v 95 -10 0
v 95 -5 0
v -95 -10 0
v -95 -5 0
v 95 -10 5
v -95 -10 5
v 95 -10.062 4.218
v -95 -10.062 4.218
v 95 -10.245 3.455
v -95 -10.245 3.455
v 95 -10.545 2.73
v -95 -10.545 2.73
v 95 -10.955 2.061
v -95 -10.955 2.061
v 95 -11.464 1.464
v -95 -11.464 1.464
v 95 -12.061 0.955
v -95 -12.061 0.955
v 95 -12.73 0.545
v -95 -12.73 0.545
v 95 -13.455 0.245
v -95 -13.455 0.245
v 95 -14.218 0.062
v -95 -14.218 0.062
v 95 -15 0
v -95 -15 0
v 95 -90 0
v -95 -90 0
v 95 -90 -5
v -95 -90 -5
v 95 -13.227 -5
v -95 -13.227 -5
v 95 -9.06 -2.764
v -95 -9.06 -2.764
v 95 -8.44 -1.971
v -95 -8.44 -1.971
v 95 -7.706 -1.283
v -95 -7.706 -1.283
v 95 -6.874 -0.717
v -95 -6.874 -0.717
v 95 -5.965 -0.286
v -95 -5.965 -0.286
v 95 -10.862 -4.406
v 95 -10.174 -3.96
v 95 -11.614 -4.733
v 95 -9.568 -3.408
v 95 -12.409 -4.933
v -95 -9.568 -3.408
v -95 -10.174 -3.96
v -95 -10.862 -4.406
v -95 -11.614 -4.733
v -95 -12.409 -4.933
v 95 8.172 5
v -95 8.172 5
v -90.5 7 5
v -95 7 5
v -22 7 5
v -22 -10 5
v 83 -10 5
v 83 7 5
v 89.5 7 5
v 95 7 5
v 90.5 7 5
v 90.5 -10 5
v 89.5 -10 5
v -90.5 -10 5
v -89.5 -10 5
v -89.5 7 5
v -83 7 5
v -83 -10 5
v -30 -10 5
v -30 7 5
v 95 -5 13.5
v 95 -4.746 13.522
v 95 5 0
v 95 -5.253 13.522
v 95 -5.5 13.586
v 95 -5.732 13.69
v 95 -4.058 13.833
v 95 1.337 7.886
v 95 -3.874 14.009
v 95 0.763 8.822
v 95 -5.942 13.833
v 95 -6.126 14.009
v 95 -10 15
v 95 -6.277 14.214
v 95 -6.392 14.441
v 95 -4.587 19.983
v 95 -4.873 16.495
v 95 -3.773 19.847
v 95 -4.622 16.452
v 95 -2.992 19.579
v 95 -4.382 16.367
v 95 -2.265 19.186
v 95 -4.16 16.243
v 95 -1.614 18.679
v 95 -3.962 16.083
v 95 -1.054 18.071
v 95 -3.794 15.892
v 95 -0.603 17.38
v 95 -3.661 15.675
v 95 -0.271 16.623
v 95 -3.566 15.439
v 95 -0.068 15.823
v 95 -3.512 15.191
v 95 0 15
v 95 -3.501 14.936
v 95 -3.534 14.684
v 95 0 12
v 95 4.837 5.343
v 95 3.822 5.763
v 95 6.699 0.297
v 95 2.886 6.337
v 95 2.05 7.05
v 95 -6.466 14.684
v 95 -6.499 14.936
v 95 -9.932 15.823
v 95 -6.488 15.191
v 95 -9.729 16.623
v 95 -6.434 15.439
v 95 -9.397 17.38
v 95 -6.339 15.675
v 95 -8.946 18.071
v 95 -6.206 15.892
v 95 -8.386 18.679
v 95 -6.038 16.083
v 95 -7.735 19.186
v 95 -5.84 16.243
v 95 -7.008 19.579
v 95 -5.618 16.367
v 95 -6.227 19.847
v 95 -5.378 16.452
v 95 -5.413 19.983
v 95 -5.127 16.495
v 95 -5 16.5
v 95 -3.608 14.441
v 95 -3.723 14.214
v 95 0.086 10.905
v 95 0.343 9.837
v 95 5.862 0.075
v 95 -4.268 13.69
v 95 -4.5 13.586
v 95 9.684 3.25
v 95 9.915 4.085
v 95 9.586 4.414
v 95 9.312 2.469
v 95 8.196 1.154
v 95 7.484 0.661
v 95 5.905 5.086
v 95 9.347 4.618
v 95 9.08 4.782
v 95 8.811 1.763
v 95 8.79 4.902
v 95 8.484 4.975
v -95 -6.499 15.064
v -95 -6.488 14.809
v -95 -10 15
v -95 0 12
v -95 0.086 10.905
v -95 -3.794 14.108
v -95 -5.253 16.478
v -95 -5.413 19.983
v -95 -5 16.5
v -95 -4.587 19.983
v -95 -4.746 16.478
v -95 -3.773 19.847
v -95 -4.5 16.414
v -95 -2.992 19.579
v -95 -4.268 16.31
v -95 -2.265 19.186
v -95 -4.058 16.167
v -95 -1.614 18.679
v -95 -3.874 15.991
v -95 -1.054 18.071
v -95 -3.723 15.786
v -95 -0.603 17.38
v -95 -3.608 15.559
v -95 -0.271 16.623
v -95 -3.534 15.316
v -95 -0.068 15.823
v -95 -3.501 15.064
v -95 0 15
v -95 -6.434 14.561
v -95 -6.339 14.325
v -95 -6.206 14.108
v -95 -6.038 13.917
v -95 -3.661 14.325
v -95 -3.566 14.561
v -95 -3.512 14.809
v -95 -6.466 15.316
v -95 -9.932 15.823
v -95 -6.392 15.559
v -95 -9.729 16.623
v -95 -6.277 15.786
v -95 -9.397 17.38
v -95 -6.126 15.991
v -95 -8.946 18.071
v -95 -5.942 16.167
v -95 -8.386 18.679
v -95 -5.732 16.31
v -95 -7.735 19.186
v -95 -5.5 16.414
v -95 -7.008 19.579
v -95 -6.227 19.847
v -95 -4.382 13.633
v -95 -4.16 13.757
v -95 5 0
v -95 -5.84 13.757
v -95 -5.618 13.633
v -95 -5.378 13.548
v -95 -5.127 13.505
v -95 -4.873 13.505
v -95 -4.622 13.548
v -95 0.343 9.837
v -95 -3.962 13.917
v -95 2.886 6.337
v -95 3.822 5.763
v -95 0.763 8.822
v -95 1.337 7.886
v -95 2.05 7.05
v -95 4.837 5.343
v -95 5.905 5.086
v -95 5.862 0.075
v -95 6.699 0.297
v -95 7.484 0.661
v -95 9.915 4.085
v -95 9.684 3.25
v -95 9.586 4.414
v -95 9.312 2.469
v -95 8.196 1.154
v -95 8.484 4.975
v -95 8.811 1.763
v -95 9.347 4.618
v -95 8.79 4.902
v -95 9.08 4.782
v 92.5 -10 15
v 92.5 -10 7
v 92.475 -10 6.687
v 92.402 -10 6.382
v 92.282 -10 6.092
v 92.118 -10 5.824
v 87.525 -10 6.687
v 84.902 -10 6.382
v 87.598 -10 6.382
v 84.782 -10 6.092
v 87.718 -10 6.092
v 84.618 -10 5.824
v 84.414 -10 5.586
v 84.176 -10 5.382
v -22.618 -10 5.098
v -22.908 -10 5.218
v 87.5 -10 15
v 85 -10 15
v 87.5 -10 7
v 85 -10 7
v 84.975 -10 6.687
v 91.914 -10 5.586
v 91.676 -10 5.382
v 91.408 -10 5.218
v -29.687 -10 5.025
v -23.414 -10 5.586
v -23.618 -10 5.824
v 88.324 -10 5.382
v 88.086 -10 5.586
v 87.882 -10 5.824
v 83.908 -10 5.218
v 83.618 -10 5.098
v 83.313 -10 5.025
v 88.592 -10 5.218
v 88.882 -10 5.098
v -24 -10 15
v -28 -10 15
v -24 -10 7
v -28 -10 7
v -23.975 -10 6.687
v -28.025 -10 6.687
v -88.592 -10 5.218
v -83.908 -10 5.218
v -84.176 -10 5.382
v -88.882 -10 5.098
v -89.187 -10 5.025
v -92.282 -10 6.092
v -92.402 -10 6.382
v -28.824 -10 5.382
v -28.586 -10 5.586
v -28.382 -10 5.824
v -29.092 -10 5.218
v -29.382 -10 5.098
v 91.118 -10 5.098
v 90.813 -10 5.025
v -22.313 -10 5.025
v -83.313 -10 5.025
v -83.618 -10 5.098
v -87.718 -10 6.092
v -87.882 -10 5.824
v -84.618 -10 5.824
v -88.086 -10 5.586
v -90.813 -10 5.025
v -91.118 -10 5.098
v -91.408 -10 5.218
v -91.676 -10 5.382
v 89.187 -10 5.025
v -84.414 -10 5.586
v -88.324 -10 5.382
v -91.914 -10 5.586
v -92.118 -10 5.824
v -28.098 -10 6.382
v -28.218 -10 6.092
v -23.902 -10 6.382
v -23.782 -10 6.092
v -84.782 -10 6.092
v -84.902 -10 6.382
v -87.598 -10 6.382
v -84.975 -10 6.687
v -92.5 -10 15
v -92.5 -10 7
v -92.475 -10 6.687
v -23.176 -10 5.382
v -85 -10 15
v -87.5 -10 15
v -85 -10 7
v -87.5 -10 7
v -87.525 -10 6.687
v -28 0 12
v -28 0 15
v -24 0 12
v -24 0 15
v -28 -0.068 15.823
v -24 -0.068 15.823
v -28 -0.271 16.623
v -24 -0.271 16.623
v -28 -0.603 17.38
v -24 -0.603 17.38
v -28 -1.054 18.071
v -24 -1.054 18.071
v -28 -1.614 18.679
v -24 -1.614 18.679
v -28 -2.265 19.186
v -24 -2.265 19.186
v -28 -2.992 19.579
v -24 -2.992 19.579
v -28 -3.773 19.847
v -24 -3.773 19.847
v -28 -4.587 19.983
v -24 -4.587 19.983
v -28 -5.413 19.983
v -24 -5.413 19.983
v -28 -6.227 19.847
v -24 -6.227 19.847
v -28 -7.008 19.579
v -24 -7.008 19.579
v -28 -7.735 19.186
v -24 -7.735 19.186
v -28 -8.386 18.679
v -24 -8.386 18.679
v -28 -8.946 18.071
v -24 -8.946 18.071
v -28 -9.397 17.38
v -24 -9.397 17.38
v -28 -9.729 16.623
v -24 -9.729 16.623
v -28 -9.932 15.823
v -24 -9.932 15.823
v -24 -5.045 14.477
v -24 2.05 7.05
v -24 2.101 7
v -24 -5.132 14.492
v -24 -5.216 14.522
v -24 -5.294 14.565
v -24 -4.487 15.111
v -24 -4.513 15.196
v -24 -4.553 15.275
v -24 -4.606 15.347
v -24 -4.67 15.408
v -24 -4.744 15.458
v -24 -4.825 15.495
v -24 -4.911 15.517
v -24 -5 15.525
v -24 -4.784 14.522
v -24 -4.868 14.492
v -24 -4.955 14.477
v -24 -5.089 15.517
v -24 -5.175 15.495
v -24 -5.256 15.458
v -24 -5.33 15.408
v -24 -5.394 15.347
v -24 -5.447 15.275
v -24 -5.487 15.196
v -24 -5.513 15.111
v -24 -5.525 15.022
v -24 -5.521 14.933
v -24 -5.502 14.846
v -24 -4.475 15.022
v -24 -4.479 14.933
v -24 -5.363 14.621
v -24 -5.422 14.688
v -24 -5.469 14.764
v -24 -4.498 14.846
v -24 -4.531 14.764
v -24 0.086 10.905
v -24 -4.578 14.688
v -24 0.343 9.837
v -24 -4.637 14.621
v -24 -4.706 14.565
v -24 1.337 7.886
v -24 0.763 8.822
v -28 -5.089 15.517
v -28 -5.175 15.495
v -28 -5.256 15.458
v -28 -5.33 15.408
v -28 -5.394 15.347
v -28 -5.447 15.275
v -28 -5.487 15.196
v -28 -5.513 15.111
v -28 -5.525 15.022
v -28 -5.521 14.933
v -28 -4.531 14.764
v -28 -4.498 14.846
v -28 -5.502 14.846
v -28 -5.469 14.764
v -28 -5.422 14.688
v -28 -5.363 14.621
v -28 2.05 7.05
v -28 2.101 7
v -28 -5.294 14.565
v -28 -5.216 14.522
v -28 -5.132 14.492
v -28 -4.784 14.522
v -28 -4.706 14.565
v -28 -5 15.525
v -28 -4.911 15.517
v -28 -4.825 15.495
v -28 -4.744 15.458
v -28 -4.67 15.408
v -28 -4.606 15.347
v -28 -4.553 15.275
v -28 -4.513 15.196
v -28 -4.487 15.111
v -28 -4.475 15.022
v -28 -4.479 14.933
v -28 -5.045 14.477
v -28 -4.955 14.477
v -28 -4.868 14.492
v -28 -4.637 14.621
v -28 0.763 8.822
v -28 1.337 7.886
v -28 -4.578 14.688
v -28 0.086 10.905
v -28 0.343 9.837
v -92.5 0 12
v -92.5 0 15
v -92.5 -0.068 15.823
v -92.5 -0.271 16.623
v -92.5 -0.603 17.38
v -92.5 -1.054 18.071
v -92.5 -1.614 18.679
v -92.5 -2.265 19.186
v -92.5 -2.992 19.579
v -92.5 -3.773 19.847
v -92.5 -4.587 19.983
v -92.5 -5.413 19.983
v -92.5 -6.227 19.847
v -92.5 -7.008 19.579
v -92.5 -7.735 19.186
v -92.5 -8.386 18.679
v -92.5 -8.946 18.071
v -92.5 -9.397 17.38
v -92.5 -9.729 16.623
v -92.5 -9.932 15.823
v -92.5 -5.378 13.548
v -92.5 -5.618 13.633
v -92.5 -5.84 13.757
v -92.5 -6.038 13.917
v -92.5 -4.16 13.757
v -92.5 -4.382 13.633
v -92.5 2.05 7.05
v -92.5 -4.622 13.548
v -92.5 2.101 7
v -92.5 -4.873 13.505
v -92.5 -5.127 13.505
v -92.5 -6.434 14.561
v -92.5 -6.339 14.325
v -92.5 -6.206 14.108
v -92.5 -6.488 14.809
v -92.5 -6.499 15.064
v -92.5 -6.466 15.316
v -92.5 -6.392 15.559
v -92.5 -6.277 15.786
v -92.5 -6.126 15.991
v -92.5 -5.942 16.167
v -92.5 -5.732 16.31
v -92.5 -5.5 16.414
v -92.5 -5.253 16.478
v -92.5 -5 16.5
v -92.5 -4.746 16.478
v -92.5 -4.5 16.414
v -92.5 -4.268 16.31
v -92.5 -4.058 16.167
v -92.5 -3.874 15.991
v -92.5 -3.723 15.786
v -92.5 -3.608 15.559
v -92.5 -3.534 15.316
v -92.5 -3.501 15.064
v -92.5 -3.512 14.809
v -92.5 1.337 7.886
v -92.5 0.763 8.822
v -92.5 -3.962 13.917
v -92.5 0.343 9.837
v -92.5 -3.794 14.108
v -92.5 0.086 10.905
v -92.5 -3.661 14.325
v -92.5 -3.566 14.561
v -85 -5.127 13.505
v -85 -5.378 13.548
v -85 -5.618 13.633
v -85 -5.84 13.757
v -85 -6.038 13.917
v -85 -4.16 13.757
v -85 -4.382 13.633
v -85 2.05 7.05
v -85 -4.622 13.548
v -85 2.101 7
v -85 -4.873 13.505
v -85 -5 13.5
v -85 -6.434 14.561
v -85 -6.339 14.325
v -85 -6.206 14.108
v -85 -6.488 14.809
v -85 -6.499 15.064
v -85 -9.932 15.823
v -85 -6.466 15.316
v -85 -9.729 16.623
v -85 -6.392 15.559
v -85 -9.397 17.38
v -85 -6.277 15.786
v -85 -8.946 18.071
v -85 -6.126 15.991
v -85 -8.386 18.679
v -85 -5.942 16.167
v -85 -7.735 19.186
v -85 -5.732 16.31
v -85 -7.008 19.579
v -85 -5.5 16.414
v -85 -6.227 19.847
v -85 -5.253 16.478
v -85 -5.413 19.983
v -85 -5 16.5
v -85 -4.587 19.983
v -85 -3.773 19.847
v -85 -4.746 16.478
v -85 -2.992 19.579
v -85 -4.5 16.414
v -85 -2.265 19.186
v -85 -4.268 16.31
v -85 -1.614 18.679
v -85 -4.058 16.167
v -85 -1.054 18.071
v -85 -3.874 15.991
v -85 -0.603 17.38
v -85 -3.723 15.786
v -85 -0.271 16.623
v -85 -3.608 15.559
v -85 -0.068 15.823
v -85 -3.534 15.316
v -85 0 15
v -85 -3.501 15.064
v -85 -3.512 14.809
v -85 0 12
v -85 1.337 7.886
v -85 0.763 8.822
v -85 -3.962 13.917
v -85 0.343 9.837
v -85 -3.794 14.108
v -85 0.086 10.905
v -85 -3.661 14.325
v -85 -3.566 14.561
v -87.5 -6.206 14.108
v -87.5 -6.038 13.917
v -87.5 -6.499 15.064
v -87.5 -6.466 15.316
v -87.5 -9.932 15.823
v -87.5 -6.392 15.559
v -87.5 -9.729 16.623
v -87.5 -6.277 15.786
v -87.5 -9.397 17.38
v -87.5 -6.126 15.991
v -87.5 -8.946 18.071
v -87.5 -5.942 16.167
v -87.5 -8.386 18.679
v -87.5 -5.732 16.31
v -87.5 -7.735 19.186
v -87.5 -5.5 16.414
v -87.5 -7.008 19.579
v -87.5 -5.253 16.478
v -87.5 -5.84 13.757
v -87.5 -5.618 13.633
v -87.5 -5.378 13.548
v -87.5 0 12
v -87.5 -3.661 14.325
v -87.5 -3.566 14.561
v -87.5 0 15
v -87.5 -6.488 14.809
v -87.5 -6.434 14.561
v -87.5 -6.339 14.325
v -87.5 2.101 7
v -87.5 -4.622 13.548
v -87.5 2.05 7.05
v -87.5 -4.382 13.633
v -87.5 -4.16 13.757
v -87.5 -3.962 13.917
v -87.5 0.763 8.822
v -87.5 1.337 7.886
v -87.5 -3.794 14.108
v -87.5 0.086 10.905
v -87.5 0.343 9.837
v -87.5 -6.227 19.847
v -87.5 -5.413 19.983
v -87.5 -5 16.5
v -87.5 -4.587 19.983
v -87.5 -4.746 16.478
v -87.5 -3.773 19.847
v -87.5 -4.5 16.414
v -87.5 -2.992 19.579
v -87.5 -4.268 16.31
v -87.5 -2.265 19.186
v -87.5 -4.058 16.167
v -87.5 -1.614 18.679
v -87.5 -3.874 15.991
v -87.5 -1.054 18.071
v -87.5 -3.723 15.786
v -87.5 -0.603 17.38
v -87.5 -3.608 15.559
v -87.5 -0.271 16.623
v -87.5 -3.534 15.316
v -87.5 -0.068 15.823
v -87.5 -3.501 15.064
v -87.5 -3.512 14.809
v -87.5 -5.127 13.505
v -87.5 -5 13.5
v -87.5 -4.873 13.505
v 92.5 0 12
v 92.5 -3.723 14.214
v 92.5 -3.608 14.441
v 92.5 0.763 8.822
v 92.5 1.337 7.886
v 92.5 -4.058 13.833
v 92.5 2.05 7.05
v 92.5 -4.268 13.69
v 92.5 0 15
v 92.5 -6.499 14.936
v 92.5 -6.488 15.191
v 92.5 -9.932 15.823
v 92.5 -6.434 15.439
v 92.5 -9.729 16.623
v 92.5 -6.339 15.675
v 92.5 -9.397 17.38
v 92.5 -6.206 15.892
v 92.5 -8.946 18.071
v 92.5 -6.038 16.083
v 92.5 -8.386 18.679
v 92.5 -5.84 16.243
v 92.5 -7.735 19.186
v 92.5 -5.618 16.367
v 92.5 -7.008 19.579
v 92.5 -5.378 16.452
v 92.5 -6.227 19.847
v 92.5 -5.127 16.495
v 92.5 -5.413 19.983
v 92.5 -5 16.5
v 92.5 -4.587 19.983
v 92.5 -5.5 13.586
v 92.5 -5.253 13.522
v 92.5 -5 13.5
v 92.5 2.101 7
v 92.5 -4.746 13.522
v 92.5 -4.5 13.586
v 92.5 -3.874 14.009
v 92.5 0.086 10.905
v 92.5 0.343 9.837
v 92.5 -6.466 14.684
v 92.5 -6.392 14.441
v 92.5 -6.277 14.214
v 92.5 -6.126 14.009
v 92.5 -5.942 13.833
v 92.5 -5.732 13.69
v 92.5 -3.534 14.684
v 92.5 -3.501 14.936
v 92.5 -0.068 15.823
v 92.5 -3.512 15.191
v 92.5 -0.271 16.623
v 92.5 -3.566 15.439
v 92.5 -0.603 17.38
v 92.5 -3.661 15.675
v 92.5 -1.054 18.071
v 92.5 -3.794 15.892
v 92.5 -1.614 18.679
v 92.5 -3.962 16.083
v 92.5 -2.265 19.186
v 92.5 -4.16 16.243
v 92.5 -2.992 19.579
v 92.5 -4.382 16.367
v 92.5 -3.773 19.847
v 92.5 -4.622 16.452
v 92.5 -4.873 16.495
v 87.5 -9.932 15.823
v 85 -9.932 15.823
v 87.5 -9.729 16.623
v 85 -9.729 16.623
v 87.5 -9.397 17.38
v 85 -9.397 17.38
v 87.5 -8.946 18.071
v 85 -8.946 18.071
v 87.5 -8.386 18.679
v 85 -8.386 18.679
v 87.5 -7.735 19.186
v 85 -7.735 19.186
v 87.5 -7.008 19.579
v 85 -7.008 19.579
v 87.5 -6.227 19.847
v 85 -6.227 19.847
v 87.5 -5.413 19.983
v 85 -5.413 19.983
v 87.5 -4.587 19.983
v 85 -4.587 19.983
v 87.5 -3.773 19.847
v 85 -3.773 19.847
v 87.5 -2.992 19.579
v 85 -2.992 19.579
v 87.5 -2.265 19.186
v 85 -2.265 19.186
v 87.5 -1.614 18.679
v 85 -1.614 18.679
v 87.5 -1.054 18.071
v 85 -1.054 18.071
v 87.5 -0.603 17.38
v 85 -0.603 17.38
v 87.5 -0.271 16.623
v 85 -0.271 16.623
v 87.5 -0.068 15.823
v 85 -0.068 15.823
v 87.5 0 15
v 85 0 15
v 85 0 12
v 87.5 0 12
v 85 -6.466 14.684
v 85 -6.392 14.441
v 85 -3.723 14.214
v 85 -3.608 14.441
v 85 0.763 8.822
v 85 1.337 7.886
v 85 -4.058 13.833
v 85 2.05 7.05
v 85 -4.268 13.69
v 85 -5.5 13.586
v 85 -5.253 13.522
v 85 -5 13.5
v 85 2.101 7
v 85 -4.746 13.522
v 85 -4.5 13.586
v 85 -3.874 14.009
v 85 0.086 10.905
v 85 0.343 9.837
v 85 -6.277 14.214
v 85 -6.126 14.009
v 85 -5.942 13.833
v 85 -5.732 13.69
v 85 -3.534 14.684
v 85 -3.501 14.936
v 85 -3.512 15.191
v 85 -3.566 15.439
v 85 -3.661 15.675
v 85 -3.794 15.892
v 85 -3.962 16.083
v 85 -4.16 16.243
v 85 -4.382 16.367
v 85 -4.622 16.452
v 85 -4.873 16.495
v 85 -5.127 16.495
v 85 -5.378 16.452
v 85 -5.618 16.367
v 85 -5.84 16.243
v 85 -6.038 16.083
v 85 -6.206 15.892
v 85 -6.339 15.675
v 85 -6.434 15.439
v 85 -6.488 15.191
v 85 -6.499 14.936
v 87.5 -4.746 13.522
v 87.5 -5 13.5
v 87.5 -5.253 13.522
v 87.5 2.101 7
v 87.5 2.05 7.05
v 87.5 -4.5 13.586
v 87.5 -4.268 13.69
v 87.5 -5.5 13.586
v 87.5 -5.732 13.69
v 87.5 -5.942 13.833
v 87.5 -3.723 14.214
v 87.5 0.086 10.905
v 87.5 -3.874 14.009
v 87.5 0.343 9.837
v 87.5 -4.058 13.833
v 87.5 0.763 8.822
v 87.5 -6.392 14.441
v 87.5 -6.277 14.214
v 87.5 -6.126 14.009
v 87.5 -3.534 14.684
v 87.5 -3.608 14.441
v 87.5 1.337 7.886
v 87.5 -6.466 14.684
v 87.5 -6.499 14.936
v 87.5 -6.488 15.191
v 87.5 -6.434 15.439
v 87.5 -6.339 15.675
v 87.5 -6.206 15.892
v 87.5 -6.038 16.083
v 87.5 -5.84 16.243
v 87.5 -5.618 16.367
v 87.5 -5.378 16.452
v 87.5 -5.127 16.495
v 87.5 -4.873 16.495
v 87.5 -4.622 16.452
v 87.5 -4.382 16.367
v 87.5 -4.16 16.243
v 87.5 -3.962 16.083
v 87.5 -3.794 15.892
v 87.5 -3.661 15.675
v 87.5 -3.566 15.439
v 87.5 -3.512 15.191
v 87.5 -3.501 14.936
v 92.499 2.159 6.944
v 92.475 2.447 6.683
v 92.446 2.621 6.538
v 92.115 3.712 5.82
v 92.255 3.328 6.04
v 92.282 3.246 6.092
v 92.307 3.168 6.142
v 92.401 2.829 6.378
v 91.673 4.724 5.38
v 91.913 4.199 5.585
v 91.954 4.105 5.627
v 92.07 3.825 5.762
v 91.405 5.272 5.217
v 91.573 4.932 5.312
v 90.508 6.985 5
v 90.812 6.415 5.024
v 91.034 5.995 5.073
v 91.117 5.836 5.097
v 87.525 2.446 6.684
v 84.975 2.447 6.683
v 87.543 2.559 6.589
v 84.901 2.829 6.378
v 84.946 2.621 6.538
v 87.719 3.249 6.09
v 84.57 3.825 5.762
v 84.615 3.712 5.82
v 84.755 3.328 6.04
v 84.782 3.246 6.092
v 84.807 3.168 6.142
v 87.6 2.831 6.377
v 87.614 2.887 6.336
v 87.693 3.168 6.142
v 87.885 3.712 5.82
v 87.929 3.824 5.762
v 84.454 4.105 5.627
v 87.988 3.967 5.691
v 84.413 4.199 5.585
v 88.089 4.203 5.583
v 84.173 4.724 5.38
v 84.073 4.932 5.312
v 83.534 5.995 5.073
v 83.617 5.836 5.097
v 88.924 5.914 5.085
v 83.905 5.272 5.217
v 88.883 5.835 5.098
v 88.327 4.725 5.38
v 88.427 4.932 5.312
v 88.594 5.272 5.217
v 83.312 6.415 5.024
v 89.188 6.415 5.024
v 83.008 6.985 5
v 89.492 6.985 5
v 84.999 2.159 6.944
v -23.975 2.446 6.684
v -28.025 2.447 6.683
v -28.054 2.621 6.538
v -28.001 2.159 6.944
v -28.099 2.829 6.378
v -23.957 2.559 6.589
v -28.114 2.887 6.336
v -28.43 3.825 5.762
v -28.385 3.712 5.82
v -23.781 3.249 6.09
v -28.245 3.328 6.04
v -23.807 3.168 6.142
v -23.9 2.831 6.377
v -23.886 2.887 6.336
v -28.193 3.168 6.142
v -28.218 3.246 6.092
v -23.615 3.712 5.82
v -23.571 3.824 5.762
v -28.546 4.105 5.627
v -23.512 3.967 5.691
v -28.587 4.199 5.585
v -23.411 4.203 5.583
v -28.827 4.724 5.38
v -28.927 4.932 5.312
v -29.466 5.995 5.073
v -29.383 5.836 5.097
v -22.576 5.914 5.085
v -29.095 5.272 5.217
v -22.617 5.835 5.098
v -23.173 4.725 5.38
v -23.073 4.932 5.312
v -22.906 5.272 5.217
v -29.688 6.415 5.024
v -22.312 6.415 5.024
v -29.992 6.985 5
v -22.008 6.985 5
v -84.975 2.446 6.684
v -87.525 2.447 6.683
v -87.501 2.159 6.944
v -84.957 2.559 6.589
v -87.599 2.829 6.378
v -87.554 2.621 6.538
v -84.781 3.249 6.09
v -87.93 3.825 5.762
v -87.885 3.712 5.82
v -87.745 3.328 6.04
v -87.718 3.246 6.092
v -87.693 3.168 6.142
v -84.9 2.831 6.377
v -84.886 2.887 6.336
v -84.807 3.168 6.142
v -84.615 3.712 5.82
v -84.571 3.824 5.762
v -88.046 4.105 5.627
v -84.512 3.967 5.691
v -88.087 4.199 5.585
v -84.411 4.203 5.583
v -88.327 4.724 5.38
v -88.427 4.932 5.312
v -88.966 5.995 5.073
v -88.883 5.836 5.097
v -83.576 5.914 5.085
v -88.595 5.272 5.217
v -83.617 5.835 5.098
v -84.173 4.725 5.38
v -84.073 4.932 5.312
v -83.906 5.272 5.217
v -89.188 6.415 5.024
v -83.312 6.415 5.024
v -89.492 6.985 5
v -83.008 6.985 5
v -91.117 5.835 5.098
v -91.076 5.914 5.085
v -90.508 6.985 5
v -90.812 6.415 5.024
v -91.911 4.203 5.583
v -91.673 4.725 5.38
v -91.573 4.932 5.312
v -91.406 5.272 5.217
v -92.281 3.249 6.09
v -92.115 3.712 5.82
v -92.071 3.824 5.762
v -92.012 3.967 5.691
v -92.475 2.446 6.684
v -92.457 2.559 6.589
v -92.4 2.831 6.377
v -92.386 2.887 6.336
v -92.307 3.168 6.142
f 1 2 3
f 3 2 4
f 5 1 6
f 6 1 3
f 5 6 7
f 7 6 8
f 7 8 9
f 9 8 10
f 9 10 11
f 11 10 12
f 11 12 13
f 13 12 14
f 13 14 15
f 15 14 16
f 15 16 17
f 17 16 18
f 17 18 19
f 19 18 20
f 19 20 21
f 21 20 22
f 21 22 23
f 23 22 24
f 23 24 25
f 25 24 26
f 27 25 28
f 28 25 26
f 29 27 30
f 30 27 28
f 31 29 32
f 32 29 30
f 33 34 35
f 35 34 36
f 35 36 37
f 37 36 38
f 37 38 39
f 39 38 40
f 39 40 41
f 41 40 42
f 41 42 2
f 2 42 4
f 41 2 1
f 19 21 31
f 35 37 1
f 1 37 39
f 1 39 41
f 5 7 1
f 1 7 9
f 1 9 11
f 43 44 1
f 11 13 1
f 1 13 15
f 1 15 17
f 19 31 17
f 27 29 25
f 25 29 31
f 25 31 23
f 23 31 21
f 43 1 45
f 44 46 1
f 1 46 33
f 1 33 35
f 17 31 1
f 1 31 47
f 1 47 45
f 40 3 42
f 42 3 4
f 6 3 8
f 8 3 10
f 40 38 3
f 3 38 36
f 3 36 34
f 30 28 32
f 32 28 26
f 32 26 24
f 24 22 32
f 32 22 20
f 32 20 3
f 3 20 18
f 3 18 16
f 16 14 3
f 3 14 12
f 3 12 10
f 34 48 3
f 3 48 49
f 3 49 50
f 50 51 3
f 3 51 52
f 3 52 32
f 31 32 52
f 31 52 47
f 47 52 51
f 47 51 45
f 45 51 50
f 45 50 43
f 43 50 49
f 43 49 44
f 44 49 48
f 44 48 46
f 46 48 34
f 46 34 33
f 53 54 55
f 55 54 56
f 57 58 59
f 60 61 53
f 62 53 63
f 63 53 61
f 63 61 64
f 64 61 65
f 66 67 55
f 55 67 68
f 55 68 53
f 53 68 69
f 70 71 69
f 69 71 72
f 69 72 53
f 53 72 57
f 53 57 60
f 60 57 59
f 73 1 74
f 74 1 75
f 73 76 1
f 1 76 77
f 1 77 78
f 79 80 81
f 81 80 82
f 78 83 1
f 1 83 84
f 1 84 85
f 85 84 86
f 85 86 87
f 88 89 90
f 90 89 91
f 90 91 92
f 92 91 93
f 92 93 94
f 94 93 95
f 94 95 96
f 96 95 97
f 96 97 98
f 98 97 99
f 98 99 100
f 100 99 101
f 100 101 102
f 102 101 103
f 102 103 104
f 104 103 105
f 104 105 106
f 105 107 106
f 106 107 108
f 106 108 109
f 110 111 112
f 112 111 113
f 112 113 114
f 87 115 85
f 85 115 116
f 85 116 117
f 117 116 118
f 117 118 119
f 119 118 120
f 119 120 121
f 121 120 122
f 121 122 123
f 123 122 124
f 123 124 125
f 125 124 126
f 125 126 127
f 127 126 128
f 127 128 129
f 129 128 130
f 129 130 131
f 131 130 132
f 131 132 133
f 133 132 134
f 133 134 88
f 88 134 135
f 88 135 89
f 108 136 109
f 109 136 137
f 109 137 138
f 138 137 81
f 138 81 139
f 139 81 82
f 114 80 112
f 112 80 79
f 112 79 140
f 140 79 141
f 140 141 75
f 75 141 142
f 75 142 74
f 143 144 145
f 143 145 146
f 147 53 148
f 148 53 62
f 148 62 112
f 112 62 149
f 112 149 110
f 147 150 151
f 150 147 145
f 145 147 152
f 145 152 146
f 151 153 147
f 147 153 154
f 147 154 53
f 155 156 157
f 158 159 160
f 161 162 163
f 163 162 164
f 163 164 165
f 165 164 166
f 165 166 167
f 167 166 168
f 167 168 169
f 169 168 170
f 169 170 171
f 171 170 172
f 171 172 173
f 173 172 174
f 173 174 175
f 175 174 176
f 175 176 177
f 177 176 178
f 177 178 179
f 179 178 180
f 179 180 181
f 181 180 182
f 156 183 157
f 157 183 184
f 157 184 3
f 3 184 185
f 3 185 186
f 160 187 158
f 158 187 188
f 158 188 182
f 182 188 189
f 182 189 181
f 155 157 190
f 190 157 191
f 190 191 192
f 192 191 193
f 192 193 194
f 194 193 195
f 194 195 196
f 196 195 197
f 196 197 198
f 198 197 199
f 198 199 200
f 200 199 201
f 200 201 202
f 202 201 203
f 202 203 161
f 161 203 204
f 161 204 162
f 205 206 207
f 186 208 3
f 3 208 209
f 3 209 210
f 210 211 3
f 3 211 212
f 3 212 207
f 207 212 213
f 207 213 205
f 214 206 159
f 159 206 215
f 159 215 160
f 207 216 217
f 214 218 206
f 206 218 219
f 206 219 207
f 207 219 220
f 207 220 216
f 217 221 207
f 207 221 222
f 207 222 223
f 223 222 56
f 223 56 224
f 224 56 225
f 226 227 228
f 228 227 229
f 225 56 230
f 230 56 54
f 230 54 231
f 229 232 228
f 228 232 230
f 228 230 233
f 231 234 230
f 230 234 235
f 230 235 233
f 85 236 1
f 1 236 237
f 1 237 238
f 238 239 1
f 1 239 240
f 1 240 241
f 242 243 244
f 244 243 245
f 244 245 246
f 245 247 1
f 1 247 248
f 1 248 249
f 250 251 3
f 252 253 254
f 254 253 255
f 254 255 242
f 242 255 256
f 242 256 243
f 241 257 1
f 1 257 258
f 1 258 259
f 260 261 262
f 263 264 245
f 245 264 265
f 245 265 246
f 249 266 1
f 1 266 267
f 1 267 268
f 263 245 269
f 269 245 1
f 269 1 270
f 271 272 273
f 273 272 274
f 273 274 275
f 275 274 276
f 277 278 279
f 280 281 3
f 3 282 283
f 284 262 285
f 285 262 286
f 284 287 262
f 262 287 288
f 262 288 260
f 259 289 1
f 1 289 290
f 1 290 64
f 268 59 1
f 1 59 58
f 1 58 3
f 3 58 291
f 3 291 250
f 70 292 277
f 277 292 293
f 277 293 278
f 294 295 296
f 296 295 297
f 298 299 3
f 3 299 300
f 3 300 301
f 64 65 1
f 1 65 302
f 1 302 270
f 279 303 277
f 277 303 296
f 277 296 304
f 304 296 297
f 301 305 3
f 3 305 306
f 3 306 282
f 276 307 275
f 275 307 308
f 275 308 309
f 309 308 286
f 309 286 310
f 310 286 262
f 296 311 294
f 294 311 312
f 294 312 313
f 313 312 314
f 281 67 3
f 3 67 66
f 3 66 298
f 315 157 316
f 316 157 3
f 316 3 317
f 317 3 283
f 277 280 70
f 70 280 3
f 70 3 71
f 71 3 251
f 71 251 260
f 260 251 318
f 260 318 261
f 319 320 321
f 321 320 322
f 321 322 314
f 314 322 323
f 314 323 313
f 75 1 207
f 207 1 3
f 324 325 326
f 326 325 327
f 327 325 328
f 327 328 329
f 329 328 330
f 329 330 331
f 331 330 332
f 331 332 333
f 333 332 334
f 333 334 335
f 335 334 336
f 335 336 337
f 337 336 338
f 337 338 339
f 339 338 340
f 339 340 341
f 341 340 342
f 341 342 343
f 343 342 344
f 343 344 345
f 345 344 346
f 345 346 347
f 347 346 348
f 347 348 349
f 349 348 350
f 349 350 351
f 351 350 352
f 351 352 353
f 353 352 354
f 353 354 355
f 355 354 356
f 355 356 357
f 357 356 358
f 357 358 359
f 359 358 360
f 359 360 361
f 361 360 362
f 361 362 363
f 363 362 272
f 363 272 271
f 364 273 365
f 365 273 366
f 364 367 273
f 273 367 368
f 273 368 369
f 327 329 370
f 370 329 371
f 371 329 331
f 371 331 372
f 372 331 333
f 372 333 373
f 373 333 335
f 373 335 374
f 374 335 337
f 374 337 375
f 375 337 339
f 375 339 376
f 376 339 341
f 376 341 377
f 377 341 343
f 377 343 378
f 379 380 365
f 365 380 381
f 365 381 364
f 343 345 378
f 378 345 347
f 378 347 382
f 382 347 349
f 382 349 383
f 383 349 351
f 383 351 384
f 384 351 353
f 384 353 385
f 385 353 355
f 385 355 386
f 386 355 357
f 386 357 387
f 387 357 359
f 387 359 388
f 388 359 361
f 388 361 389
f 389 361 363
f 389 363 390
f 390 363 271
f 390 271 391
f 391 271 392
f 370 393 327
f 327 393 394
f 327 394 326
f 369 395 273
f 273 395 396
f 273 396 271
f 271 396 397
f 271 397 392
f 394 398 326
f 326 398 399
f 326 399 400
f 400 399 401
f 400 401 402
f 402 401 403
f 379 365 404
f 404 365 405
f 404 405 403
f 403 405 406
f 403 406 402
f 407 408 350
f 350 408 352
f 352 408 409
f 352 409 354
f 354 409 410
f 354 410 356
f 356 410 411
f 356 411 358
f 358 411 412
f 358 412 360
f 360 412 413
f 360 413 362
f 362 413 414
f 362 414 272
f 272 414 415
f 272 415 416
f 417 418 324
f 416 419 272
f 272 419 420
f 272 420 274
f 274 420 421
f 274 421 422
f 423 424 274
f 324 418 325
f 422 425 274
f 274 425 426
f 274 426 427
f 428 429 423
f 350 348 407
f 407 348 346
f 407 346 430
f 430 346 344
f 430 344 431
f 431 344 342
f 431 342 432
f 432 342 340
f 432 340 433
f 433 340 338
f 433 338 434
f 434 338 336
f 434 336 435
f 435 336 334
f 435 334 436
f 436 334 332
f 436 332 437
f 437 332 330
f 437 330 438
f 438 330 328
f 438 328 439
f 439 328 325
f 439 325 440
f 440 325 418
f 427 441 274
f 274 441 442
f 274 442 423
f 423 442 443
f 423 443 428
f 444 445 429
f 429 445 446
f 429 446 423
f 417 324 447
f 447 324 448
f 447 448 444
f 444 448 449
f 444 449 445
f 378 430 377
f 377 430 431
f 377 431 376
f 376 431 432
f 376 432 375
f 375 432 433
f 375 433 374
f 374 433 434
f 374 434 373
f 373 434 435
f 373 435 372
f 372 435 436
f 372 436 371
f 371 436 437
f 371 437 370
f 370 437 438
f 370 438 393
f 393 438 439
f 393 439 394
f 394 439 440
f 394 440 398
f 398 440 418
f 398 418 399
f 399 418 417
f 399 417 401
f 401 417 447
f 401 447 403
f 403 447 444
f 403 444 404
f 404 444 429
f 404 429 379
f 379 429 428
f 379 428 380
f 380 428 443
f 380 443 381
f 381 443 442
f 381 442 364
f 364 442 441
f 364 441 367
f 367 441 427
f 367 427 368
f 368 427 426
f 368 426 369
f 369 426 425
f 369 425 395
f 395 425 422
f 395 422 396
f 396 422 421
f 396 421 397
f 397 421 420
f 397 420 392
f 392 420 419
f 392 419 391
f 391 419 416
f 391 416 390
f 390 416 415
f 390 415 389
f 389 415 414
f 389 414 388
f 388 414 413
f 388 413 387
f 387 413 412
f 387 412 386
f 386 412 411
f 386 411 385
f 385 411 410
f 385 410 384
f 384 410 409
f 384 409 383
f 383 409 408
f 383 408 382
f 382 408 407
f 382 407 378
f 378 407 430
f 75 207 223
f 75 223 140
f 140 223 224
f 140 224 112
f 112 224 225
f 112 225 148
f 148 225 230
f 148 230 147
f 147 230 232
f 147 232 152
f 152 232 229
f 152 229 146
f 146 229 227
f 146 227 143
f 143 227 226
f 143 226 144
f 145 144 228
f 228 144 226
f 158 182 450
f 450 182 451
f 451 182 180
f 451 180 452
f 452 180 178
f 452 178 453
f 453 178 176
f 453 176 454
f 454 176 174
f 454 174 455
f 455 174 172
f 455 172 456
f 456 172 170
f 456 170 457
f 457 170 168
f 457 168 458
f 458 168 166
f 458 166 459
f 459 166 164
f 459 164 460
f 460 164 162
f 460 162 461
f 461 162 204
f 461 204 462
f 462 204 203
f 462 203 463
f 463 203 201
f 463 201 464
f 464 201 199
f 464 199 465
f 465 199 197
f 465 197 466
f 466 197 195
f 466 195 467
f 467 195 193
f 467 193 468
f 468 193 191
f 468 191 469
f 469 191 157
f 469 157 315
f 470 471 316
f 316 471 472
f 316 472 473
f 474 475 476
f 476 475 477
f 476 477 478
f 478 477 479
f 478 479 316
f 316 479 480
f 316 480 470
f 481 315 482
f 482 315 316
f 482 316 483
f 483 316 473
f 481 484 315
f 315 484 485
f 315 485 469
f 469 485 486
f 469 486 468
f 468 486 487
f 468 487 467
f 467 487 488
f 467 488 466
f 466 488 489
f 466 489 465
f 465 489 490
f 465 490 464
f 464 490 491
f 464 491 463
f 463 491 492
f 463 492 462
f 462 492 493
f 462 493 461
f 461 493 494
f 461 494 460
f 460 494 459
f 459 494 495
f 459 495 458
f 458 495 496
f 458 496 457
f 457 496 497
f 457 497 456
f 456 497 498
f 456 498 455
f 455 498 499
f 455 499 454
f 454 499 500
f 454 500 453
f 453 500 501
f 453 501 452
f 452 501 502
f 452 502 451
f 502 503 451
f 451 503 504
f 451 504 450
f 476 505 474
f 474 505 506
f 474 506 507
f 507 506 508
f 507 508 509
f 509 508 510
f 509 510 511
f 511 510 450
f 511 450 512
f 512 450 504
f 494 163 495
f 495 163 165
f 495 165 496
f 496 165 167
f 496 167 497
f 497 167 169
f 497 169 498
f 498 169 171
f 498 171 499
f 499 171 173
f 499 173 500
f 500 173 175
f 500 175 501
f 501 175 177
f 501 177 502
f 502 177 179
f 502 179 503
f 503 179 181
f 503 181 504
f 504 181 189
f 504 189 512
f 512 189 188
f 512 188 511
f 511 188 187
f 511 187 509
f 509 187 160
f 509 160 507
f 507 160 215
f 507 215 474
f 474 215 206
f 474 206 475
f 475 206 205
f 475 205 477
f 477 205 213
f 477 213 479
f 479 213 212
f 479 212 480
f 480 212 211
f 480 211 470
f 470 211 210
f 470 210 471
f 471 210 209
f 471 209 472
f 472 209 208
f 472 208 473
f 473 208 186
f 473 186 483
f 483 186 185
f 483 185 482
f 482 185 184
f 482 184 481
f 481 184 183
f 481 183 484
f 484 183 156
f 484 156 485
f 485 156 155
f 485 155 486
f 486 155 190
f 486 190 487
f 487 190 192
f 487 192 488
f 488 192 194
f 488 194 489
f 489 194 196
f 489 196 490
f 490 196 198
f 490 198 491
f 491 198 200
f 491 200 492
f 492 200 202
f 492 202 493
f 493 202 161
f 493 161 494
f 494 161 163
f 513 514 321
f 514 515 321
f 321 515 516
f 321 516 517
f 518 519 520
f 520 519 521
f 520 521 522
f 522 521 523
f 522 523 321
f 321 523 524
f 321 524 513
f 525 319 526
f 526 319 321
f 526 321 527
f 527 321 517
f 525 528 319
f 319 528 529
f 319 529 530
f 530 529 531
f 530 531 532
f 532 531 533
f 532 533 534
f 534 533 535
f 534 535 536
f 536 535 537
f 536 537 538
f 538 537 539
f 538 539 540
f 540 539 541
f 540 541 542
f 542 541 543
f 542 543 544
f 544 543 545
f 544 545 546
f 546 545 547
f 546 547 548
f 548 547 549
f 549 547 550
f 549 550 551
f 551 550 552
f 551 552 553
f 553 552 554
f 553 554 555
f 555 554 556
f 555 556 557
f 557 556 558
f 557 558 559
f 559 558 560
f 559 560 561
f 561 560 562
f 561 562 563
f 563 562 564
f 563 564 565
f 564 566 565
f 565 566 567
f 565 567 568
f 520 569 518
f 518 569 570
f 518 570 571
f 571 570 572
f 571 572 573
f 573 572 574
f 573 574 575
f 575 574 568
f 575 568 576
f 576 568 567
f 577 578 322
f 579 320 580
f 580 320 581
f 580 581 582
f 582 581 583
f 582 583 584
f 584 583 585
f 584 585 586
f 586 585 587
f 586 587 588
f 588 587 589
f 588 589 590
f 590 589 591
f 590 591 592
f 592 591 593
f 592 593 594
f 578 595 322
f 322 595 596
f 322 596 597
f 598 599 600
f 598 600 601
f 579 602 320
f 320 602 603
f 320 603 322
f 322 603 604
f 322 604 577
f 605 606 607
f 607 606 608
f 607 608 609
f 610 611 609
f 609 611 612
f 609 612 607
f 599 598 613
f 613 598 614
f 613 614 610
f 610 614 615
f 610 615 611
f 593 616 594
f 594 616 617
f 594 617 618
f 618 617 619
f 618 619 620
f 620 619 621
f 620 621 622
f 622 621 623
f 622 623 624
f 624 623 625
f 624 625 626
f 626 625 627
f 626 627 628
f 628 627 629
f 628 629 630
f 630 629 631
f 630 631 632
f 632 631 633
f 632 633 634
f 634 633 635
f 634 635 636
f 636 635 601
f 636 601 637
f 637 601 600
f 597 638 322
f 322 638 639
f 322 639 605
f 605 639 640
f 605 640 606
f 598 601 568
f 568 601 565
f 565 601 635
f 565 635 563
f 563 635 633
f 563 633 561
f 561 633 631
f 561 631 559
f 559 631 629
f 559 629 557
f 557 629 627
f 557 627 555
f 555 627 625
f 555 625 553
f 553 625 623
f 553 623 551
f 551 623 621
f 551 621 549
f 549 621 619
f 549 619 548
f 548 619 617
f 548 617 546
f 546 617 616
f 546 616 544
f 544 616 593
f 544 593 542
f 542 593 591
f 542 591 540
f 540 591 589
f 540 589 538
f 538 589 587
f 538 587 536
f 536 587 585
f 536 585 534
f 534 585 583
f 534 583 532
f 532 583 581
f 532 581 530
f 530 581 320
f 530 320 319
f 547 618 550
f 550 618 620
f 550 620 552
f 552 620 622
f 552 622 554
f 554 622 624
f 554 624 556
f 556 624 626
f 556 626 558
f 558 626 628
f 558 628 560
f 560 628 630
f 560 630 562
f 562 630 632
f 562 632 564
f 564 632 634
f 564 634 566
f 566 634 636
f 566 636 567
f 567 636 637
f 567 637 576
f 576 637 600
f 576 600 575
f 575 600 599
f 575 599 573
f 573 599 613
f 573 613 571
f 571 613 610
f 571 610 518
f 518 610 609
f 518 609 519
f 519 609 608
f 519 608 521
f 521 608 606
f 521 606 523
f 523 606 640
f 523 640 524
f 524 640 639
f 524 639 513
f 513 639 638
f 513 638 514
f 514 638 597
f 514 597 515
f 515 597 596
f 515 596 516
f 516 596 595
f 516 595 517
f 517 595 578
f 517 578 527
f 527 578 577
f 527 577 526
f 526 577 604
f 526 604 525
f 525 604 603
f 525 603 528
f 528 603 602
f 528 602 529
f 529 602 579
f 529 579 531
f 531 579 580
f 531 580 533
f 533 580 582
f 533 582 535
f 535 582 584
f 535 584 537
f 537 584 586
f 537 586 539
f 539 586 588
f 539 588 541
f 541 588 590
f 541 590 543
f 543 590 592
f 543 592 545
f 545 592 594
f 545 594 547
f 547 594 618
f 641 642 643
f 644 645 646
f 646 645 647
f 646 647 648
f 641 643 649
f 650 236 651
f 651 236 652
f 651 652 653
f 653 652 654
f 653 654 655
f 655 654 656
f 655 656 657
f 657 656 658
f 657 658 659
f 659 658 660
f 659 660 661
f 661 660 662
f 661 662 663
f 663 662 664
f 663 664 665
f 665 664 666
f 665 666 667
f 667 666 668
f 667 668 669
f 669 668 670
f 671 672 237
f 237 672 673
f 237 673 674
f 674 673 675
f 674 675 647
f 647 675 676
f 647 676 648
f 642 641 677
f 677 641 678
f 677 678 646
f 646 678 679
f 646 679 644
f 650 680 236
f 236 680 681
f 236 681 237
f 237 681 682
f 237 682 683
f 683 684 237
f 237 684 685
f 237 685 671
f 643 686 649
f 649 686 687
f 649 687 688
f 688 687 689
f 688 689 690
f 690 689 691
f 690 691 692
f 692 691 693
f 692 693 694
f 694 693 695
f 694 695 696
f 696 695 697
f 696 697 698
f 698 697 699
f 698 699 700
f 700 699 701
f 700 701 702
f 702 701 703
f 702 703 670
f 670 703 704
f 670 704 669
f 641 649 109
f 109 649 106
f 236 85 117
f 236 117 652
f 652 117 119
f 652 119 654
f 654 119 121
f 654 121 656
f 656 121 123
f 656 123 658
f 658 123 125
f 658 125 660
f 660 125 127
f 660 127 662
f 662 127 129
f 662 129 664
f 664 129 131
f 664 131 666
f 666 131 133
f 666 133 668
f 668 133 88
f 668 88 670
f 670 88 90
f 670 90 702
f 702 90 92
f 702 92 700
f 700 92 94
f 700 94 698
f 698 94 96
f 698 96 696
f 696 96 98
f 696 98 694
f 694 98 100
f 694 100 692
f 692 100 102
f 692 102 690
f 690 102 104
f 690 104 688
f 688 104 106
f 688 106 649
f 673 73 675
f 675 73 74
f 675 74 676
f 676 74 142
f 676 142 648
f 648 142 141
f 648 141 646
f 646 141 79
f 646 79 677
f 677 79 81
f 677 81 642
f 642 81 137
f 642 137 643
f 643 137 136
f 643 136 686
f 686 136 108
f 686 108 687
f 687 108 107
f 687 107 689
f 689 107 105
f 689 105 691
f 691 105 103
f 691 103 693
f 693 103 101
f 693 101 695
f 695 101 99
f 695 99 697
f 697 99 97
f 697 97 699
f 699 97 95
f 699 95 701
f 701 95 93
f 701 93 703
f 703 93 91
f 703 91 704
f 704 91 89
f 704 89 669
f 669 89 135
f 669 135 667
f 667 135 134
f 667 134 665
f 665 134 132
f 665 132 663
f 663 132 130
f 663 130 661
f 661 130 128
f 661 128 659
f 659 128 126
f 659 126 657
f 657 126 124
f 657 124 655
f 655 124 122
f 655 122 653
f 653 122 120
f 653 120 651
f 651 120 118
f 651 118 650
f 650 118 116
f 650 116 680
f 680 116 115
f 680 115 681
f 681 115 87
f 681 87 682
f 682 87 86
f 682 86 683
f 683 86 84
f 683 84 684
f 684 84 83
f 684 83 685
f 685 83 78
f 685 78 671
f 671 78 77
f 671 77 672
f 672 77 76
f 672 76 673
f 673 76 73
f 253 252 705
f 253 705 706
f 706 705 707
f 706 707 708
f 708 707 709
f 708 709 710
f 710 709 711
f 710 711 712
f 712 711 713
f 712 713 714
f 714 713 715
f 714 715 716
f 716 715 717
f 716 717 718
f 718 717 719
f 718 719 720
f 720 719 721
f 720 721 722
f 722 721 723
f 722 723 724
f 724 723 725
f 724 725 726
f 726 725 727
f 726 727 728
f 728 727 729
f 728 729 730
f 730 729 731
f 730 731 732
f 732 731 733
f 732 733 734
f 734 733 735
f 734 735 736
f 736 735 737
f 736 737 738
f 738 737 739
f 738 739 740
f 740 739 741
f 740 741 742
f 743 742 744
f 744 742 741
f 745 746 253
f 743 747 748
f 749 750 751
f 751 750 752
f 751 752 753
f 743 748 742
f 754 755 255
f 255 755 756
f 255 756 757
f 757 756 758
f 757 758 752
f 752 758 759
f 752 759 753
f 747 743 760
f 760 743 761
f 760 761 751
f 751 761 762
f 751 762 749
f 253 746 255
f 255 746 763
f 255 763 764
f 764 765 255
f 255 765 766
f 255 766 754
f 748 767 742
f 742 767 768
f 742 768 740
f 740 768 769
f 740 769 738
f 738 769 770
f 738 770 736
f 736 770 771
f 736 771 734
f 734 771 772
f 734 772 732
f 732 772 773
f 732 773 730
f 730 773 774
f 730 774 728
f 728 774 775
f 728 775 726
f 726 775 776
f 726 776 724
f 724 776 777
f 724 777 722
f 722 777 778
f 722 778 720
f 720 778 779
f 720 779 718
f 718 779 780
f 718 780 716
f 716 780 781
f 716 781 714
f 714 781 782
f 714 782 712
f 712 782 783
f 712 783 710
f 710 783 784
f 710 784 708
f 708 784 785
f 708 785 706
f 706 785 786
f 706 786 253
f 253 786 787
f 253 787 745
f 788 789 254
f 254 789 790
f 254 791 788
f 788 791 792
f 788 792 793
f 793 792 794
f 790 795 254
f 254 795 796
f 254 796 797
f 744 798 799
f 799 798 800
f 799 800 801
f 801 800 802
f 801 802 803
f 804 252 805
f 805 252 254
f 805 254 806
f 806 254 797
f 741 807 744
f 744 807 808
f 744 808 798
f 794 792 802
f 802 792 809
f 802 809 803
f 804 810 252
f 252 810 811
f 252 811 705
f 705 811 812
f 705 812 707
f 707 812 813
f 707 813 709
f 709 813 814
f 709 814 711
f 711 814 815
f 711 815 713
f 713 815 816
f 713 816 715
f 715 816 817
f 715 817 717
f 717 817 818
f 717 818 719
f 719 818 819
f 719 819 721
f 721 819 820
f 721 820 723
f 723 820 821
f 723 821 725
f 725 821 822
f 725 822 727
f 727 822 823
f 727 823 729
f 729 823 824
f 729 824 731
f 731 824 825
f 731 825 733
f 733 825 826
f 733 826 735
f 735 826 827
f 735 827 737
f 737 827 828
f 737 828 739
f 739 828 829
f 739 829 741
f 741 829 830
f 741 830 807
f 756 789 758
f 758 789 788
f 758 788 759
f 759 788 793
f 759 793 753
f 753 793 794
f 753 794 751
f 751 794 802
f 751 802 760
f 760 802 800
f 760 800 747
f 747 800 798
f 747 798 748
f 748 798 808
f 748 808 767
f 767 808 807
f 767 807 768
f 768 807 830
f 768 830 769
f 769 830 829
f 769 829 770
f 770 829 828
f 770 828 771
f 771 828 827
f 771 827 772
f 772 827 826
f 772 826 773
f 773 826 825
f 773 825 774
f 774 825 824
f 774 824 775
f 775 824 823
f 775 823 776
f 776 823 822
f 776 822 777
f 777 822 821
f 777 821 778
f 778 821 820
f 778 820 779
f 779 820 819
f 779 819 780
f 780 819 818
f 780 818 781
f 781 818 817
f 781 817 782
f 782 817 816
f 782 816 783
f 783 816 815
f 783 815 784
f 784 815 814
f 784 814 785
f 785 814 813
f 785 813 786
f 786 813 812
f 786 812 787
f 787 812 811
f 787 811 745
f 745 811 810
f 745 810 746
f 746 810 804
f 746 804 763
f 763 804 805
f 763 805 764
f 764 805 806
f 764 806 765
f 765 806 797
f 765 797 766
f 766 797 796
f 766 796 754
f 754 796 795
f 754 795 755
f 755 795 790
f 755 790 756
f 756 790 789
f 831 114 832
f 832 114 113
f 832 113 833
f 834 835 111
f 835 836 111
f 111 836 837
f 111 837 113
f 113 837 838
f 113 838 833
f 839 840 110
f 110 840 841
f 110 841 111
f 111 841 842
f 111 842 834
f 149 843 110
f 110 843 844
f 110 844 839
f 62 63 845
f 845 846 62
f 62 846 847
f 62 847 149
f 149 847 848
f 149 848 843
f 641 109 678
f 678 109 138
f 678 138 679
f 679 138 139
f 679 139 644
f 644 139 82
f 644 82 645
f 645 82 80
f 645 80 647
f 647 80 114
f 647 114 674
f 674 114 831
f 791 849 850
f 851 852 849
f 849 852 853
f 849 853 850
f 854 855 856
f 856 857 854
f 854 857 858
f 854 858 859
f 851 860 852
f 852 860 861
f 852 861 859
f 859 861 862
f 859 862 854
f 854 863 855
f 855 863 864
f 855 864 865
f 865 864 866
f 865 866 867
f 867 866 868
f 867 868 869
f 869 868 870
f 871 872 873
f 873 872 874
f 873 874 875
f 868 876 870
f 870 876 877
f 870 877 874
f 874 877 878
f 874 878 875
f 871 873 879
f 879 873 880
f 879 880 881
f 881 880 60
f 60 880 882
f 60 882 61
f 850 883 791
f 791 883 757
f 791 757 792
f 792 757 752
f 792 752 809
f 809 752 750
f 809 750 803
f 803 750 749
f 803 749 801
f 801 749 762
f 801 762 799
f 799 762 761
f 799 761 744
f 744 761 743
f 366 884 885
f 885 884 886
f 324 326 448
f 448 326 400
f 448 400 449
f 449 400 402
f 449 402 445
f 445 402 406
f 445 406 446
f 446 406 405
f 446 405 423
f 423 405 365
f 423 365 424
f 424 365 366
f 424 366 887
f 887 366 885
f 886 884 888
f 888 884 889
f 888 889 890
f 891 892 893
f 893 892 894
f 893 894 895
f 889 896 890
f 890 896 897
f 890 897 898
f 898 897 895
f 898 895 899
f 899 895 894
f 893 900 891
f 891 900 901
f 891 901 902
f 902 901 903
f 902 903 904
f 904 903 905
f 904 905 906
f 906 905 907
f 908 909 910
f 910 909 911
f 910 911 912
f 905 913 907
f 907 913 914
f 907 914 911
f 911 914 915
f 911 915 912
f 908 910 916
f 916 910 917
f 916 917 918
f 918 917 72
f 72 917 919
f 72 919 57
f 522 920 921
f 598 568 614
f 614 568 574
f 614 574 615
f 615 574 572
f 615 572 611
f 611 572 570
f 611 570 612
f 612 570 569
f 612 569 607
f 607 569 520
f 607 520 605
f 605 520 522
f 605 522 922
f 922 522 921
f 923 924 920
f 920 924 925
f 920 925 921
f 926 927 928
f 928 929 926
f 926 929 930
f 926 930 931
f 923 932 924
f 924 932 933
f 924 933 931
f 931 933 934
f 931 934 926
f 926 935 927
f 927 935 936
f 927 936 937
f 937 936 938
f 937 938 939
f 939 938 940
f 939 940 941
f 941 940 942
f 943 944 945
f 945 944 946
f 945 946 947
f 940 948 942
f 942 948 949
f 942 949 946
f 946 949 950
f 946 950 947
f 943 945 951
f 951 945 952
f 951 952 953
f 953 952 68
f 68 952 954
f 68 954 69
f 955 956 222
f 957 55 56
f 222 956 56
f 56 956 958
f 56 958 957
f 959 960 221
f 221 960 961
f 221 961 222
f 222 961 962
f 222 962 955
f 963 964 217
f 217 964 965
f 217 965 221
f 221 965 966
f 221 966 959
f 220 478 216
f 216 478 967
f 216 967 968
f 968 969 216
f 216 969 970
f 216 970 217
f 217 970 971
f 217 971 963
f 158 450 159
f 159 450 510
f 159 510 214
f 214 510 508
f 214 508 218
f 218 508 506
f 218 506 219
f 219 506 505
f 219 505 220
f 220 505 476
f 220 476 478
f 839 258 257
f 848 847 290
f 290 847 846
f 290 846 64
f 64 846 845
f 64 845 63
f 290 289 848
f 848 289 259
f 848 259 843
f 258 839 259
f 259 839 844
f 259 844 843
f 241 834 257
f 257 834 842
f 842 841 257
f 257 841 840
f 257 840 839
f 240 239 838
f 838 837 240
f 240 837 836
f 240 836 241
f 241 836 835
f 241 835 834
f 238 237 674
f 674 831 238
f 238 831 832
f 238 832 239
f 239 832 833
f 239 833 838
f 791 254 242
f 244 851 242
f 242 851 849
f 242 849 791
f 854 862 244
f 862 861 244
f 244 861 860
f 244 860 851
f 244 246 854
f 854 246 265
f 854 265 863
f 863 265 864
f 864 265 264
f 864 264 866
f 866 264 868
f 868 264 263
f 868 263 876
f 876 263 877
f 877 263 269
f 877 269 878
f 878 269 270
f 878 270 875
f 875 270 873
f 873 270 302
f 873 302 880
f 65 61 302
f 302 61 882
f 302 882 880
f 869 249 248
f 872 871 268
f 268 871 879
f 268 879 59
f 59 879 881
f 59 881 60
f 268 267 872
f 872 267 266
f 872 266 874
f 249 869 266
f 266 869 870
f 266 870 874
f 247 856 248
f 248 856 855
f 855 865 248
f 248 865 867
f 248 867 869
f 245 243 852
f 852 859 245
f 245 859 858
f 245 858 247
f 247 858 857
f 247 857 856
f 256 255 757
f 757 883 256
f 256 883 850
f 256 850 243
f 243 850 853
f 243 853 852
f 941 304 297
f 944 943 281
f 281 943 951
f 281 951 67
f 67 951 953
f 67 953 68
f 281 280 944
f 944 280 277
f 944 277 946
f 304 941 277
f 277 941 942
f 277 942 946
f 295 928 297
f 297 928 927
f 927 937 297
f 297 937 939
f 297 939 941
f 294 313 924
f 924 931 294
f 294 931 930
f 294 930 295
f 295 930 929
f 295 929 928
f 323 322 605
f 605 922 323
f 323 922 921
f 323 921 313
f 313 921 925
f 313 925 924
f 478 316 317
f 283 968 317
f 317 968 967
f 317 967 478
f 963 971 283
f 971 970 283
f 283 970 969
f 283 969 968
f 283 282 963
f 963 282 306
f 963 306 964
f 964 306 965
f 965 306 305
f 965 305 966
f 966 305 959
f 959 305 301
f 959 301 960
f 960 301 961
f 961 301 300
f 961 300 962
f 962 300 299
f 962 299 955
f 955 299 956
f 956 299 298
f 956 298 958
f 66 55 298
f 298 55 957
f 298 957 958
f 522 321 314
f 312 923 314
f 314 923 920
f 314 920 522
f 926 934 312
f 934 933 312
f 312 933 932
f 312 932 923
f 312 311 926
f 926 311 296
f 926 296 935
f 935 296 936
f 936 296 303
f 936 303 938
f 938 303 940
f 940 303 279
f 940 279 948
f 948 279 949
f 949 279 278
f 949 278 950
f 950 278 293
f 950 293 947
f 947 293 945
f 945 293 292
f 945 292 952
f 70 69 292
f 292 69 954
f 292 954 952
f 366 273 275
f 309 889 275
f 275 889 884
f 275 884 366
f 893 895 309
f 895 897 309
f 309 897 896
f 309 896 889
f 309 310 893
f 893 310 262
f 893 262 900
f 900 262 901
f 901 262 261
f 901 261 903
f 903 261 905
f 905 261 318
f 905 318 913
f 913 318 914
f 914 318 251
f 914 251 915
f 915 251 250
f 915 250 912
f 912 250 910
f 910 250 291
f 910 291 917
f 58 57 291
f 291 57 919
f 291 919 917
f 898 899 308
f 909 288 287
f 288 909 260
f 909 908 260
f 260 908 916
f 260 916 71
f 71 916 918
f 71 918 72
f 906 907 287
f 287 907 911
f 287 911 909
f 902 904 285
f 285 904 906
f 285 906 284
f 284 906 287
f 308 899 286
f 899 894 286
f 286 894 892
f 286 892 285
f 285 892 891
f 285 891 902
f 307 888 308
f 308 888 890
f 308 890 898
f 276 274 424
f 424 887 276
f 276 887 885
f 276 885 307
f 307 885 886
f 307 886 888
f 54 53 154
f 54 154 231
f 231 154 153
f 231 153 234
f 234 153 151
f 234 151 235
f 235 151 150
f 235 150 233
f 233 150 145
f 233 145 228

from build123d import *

# Parameters (mm, degrees)
ESQUISSE1_W        = 190
ESQUISSE1_H        = 20
BOSS_EXTRU_1_DEPTH = 5
BOSS_EXTRU_2_START = -67
ESQUISSE2_R        = 0.525
BOSS_EXTRU_2_DEPTH = 4
BOSS_EXTRU_3_DEPTH = 190
CONG_3_R           = 5
CONG_4_R           = 5
CHANFREIN1_SIZE    = 1
ESQUISSE6_R        = 1.5
BOSS_EXTRU_4_DEPTH = 2.5
BOSS_EXTRU_5_START = 5
ESQUISSE7_R        = 1.5
BOSS_EXTRU_5_DEPTH = 2.5
CONG_5_R           = 7
CONG_6_R           = 2
CONG_7_R           = 2


# Some blends are built 0.0001 mm under size
with BuildPart() as part:
    # Esquisse1 → Boss.-Extru.1 (new body)
    with BuildSketch(Plane.XY):
        Rectangle(ESQUISSE1_W, ESQUISSE1_H)
    extrude(amount=BOSS_EXTRU_1_DEPTH)

    # Esquisse2 → Boss.-Extru.2 (add)
    with BuildSketch(Plane.ZY.offset(95).offset(BOSS_EXTRU_2_START)):
        with BuildLine():
            Line((5, -10), (15, -10))
            ThreePointArc((15, -10), (20, -5), (15, 0))
            Line((15, 0), (5, 0))
            Line((5, 0), (5, -10))
        make_face()
        with Locations((15, -5)):
            Circle(ESQUISSE2_R, mode=Mode.SUBTRACT)
    extrude(amount=-BOSS_EXTRU_2_DEPTH)

    # Congé4
    cong_4_edges = [part.edges().sort_by_distance(p)[0] for p in [
        (0, 10, 0),
    ]]
    fillet(cong_4_edges, radius=CONG_4_R - 0.0001)  # a hair under: the kernel refuses the full size

    # Chanfrein1
    # the kernel refuses this chamfer: 1 mm, written as the material it takes off along each edge
    with BuildSketch(Plane(origin=(-97.571682988, 10, 5), x_dir=(0, 0.027495876610585623, -0.9996219169112968), z_dir=(1, 0, 0))) as chanfrein1_piece_1:
        Polygon((CHANFREIN1_SIZE * 0.999621916911, -CHANFREIN1_SIZE * 0.0274958766106), (-CHANFREIN1_SIZE * 0.0274958766106, -CHANFREIN1_SIZE * 0.999621916911), (0, 0), align=None)
    extrude(amount=195.143365976, mode=Mode.SUBTRACT)

    # Esquisse6 → Boss.-Extru.4 (add)
    with BuildSketch(Plane.ZY.offset(95)):
        with BuildLine():
            Line((5, 0), (5, -10))
            Line((5, -10), (15, -10))
            ThreePointArc((15, -10), (20, -5), (15, 0))
            Line((15, 0), (5, 0))
        make_face()
        with Locations((15, -5)):
            Circle(ESQUISSE6_R, mode=Mode.SUBTRACT)
    boss_extru_4 = extrude(amount=-BOSS_EXTRU_4_DEPTH)

    # Esquisse7 → Boss.-Extru.5 (add)
    with BuildSketch(Plane(origin=(-92.5, 0, 0), x_dir=(0, 0, -1), z_dir=(1, 0, 0)).offset(BOSS_EXTRU_5_START)):
        with BuildLine():
            Line((-5, 0), (-15, 0))
            ThreePointArc((-15, 0), (-20, -5), (-15, -10))
            Line((-15, -10), (-5, -10))
            Line((-5, -10), (-5, 0))
        make_face()
        with Locations(Location((-15, -5, 0), (0, 0, 180))):
            Circle(ESQUISSE7_R, mode=Mode.SUBTRACT)
    boss_extru_5 = extrude(amount=BOSS_EXTRU_5_DEPTH)

    # Symétrie2: Boss.-Extru.4, Boss.-Extru.5 across plane
    add(boss_extru_4.mirror(Plane(origin=(0, 0, 0), x_dir=(0, 0, 1), z_dir=(1, 0, 0))))
    add(boss_extru_5.mirror(Plane(origin=(0, 0, 0), x_dir=(0, 0, 1), z_dir=(1, 0, 0))))

    # Congé5
    cong_5_edges = [part.edges().sort_by_distance(p)[0] for p in [
        (-26, 0, 5),
        (-93.75, 0, 5),
        (-86.25, 0, 5),
        (93.75, 0, 5),
        (86.25, 0, 5),
    ]]
    fillet(cong_5_edges, radius=CONG_5_R)

    # Congé6
    cong_6_edges = [part.edges().sort_by_distance(p)[0] for p in [
        (-24, -1.5, 5),
        (-28, -1.5, 5),
        (-92.5, -1.5, 5),
        (-85, -1.5, 5),
        (-87.5, -1.5, 5),
        (92.5, -1.5, 5),
        (85, -1.5, 5),
        (87.5, -1.5, 5),
    ]]
    fillet(cong_6_edges, radius=CONG_6_R)

    # Congé7
    cong_7_edges = [part.edges().sort_by_distance(p)[0] for p in [
        (0, 9, 5),
    ]]
    fillet(cong_7_edges, radius=CONG_7_R)


with BuildPart() as body_2:
    # Esquisse3 → Boss.-Extru.3 (new, through all)
    with BuildSketch(Plane.ZY.offset(95)):
        with BuildLine():
            Line((5, -10), (0, -10))
            Line((0, -10), (0, -5))
            ThreePointArc((0, -5), (-1.760618077, -8.239381923), (-5, -10))
            Line((-5, -10), (-5, -90))
            Line((-5, -90), (0, -90))
            Line((0, -90), (0, -15))
            ThreePointArc((0, -15), (1.464466094, -11.464466094), (5, -10))
        make_face()
    extrude(amount=-BOSS_EXTRU_3_DEPTH)

    # Congé3
    cong_3_edges = [body_2.edges().sort_by_distance(p)[0] for p in [
        (0, -10, -5),
    ]]
    fillet(cong_3_edges, radius=CONG_3_R)


solid = Compound([part.part, body_2.part])
